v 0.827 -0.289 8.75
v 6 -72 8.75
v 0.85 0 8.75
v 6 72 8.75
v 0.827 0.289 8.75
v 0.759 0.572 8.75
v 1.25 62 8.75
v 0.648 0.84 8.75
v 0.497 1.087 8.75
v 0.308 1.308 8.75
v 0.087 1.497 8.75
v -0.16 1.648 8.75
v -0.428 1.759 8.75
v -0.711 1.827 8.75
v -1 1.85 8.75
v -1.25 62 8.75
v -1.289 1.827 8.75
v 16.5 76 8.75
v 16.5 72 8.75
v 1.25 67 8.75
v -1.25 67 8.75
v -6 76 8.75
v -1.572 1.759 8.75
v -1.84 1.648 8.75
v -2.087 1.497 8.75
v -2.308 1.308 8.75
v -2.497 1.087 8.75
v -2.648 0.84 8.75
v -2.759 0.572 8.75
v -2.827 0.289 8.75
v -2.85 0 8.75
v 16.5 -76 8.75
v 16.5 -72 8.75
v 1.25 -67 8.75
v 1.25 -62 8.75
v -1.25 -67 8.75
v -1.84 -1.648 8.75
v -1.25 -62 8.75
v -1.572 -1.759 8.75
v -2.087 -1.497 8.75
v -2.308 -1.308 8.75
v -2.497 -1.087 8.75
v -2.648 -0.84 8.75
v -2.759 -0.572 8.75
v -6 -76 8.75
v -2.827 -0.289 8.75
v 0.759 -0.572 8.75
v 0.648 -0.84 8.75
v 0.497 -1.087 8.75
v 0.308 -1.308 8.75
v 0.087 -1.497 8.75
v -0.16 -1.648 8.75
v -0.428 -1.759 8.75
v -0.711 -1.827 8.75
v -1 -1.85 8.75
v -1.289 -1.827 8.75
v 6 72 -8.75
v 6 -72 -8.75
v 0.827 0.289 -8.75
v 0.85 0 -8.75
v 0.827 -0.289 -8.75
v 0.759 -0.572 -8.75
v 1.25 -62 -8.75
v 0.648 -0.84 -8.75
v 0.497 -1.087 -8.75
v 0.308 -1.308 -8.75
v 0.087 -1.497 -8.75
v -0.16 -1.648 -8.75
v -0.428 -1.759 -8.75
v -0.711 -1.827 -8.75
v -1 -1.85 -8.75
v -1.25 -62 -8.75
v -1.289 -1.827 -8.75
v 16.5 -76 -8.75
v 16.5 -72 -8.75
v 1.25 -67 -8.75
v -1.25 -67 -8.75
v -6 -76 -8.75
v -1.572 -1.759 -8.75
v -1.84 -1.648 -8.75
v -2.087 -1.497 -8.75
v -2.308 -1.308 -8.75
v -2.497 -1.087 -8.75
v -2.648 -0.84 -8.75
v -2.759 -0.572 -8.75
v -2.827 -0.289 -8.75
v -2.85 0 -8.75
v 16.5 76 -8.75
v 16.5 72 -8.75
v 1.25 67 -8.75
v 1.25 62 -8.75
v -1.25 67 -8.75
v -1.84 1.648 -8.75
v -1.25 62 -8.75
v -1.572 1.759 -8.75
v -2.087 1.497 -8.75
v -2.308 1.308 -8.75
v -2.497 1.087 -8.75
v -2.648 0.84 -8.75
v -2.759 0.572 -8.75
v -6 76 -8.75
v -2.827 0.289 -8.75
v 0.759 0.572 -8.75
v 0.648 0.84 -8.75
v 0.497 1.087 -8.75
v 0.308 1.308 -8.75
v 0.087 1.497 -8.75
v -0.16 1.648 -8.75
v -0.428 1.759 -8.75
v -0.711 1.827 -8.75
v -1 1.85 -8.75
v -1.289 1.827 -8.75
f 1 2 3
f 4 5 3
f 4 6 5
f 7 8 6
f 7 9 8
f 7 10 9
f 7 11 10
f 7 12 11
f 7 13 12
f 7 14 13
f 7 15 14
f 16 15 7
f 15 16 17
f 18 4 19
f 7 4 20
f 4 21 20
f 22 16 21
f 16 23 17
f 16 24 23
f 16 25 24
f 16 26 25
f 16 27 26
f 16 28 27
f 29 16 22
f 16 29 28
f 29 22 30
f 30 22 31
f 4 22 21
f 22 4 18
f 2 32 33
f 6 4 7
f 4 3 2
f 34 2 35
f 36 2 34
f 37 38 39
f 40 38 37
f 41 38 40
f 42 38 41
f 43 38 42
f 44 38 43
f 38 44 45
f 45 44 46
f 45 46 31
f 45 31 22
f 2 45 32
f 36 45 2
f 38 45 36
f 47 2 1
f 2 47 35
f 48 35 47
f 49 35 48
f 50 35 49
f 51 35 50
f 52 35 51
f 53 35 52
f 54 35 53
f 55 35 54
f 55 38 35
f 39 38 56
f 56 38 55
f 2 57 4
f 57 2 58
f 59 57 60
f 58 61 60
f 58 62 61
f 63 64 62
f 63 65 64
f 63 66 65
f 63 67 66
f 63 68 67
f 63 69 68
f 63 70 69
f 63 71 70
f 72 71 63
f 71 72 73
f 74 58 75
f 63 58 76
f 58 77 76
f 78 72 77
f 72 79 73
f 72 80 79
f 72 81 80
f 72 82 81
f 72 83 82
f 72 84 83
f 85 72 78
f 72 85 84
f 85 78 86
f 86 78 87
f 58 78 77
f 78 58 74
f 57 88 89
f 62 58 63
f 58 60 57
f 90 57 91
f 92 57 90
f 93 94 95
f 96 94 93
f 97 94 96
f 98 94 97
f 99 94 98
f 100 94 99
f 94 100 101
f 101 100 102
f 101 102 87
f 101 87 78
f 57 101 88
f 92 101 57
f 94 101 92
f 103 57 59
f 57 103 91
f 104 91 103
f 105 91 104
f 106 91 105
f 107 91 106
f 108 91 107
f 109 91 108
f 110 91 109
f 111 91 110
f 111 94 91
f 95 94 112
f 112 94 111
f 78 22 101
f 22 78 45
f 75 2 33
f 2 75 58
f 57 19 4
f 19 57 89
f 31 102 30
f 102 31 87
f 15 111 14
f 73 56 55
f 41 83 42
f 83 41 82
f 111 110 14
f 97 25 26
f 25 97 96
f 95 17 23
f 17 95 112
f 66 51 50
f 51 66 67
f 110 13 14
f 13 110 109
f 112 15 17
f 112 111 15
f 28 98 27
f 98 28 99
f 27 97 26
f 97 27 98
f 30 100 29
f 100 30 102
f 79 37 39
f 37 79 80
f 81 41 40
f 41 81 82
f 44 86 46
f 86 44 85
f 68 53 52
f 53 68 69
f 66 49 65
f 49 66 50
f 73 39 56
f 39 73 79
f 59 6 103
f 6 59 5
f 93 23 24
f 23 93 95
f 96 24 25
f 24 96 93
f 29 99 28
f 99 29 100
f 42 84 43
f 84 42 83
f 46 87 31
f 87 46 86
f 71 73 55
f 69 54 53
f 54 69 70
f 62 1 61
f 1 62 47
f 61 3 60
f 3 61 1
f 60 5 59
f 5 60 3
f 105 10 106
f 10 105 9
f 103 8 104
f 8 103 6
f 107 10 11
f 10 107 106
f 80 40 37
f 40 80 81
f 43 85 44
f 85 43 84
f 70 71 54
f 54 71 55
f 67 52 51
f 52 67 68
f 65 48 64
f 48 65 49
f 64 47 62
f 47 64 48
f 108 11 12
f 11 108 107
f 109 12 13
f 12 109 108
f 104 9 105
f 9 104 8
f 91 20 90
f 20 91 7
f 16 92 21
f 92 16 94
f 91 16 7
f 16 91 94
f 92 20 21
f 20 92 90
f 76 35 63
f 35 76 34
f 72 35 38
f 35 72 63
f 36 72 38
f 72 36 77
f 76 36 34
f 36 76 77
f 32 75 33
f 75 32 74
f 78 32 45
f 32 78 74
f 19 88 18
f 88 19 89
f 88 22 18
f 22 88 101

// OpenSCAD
$fn=40;
pared=2;
radio_tornillo=3.7/2;
ancho=17.5;
largo=144;
alto=12;
ancho_borde=15/2;
grosor_movil=10.5;
ancho_brida=5;
grosor_brida=ancho_brida/2;
rotate([0,90,0])
{
	difference(){
		cube([ancho,largo,alto],center=true);
		translate([0,0,-1])
			rotate([0,90,0])
				cylinder(h=ancho,r=radio_tornillo, center=true);
		translate([0,largo/2-ancho_borde,0])
				// rotate([0,90,0])
					// cylinder(h=ancho,r=radio_tornillo, center=true);
					cube([ancho,ancho_brida,grosor_brida], center=true);
		translate([0,-largo/2+ancho_borde,0])
				// rotate([0,90,0])
					// cylinder(h=ancho,r=radio_tornillo, center=true);
					cube([ancho,ancho_brida,grosor_brida], center=true);
	}
	translate([0,-largo/2-pared,grosor_movil/2])
		// rotate([0,90,0])
			// cylinder(h=ancho,r=radio_tornillo, center=true);
			cube([ancho,pared*2,alto+grosor_movil], center=true);
	translate([0,largo/2+pared,grosor_movil/2])
		// rotate([0,90,0])
			// cylinder(h=ancho,r=radio_tornillo, center=true);
			cube([ancho,pared*2,alto+grosor_movil], center=true);
}
